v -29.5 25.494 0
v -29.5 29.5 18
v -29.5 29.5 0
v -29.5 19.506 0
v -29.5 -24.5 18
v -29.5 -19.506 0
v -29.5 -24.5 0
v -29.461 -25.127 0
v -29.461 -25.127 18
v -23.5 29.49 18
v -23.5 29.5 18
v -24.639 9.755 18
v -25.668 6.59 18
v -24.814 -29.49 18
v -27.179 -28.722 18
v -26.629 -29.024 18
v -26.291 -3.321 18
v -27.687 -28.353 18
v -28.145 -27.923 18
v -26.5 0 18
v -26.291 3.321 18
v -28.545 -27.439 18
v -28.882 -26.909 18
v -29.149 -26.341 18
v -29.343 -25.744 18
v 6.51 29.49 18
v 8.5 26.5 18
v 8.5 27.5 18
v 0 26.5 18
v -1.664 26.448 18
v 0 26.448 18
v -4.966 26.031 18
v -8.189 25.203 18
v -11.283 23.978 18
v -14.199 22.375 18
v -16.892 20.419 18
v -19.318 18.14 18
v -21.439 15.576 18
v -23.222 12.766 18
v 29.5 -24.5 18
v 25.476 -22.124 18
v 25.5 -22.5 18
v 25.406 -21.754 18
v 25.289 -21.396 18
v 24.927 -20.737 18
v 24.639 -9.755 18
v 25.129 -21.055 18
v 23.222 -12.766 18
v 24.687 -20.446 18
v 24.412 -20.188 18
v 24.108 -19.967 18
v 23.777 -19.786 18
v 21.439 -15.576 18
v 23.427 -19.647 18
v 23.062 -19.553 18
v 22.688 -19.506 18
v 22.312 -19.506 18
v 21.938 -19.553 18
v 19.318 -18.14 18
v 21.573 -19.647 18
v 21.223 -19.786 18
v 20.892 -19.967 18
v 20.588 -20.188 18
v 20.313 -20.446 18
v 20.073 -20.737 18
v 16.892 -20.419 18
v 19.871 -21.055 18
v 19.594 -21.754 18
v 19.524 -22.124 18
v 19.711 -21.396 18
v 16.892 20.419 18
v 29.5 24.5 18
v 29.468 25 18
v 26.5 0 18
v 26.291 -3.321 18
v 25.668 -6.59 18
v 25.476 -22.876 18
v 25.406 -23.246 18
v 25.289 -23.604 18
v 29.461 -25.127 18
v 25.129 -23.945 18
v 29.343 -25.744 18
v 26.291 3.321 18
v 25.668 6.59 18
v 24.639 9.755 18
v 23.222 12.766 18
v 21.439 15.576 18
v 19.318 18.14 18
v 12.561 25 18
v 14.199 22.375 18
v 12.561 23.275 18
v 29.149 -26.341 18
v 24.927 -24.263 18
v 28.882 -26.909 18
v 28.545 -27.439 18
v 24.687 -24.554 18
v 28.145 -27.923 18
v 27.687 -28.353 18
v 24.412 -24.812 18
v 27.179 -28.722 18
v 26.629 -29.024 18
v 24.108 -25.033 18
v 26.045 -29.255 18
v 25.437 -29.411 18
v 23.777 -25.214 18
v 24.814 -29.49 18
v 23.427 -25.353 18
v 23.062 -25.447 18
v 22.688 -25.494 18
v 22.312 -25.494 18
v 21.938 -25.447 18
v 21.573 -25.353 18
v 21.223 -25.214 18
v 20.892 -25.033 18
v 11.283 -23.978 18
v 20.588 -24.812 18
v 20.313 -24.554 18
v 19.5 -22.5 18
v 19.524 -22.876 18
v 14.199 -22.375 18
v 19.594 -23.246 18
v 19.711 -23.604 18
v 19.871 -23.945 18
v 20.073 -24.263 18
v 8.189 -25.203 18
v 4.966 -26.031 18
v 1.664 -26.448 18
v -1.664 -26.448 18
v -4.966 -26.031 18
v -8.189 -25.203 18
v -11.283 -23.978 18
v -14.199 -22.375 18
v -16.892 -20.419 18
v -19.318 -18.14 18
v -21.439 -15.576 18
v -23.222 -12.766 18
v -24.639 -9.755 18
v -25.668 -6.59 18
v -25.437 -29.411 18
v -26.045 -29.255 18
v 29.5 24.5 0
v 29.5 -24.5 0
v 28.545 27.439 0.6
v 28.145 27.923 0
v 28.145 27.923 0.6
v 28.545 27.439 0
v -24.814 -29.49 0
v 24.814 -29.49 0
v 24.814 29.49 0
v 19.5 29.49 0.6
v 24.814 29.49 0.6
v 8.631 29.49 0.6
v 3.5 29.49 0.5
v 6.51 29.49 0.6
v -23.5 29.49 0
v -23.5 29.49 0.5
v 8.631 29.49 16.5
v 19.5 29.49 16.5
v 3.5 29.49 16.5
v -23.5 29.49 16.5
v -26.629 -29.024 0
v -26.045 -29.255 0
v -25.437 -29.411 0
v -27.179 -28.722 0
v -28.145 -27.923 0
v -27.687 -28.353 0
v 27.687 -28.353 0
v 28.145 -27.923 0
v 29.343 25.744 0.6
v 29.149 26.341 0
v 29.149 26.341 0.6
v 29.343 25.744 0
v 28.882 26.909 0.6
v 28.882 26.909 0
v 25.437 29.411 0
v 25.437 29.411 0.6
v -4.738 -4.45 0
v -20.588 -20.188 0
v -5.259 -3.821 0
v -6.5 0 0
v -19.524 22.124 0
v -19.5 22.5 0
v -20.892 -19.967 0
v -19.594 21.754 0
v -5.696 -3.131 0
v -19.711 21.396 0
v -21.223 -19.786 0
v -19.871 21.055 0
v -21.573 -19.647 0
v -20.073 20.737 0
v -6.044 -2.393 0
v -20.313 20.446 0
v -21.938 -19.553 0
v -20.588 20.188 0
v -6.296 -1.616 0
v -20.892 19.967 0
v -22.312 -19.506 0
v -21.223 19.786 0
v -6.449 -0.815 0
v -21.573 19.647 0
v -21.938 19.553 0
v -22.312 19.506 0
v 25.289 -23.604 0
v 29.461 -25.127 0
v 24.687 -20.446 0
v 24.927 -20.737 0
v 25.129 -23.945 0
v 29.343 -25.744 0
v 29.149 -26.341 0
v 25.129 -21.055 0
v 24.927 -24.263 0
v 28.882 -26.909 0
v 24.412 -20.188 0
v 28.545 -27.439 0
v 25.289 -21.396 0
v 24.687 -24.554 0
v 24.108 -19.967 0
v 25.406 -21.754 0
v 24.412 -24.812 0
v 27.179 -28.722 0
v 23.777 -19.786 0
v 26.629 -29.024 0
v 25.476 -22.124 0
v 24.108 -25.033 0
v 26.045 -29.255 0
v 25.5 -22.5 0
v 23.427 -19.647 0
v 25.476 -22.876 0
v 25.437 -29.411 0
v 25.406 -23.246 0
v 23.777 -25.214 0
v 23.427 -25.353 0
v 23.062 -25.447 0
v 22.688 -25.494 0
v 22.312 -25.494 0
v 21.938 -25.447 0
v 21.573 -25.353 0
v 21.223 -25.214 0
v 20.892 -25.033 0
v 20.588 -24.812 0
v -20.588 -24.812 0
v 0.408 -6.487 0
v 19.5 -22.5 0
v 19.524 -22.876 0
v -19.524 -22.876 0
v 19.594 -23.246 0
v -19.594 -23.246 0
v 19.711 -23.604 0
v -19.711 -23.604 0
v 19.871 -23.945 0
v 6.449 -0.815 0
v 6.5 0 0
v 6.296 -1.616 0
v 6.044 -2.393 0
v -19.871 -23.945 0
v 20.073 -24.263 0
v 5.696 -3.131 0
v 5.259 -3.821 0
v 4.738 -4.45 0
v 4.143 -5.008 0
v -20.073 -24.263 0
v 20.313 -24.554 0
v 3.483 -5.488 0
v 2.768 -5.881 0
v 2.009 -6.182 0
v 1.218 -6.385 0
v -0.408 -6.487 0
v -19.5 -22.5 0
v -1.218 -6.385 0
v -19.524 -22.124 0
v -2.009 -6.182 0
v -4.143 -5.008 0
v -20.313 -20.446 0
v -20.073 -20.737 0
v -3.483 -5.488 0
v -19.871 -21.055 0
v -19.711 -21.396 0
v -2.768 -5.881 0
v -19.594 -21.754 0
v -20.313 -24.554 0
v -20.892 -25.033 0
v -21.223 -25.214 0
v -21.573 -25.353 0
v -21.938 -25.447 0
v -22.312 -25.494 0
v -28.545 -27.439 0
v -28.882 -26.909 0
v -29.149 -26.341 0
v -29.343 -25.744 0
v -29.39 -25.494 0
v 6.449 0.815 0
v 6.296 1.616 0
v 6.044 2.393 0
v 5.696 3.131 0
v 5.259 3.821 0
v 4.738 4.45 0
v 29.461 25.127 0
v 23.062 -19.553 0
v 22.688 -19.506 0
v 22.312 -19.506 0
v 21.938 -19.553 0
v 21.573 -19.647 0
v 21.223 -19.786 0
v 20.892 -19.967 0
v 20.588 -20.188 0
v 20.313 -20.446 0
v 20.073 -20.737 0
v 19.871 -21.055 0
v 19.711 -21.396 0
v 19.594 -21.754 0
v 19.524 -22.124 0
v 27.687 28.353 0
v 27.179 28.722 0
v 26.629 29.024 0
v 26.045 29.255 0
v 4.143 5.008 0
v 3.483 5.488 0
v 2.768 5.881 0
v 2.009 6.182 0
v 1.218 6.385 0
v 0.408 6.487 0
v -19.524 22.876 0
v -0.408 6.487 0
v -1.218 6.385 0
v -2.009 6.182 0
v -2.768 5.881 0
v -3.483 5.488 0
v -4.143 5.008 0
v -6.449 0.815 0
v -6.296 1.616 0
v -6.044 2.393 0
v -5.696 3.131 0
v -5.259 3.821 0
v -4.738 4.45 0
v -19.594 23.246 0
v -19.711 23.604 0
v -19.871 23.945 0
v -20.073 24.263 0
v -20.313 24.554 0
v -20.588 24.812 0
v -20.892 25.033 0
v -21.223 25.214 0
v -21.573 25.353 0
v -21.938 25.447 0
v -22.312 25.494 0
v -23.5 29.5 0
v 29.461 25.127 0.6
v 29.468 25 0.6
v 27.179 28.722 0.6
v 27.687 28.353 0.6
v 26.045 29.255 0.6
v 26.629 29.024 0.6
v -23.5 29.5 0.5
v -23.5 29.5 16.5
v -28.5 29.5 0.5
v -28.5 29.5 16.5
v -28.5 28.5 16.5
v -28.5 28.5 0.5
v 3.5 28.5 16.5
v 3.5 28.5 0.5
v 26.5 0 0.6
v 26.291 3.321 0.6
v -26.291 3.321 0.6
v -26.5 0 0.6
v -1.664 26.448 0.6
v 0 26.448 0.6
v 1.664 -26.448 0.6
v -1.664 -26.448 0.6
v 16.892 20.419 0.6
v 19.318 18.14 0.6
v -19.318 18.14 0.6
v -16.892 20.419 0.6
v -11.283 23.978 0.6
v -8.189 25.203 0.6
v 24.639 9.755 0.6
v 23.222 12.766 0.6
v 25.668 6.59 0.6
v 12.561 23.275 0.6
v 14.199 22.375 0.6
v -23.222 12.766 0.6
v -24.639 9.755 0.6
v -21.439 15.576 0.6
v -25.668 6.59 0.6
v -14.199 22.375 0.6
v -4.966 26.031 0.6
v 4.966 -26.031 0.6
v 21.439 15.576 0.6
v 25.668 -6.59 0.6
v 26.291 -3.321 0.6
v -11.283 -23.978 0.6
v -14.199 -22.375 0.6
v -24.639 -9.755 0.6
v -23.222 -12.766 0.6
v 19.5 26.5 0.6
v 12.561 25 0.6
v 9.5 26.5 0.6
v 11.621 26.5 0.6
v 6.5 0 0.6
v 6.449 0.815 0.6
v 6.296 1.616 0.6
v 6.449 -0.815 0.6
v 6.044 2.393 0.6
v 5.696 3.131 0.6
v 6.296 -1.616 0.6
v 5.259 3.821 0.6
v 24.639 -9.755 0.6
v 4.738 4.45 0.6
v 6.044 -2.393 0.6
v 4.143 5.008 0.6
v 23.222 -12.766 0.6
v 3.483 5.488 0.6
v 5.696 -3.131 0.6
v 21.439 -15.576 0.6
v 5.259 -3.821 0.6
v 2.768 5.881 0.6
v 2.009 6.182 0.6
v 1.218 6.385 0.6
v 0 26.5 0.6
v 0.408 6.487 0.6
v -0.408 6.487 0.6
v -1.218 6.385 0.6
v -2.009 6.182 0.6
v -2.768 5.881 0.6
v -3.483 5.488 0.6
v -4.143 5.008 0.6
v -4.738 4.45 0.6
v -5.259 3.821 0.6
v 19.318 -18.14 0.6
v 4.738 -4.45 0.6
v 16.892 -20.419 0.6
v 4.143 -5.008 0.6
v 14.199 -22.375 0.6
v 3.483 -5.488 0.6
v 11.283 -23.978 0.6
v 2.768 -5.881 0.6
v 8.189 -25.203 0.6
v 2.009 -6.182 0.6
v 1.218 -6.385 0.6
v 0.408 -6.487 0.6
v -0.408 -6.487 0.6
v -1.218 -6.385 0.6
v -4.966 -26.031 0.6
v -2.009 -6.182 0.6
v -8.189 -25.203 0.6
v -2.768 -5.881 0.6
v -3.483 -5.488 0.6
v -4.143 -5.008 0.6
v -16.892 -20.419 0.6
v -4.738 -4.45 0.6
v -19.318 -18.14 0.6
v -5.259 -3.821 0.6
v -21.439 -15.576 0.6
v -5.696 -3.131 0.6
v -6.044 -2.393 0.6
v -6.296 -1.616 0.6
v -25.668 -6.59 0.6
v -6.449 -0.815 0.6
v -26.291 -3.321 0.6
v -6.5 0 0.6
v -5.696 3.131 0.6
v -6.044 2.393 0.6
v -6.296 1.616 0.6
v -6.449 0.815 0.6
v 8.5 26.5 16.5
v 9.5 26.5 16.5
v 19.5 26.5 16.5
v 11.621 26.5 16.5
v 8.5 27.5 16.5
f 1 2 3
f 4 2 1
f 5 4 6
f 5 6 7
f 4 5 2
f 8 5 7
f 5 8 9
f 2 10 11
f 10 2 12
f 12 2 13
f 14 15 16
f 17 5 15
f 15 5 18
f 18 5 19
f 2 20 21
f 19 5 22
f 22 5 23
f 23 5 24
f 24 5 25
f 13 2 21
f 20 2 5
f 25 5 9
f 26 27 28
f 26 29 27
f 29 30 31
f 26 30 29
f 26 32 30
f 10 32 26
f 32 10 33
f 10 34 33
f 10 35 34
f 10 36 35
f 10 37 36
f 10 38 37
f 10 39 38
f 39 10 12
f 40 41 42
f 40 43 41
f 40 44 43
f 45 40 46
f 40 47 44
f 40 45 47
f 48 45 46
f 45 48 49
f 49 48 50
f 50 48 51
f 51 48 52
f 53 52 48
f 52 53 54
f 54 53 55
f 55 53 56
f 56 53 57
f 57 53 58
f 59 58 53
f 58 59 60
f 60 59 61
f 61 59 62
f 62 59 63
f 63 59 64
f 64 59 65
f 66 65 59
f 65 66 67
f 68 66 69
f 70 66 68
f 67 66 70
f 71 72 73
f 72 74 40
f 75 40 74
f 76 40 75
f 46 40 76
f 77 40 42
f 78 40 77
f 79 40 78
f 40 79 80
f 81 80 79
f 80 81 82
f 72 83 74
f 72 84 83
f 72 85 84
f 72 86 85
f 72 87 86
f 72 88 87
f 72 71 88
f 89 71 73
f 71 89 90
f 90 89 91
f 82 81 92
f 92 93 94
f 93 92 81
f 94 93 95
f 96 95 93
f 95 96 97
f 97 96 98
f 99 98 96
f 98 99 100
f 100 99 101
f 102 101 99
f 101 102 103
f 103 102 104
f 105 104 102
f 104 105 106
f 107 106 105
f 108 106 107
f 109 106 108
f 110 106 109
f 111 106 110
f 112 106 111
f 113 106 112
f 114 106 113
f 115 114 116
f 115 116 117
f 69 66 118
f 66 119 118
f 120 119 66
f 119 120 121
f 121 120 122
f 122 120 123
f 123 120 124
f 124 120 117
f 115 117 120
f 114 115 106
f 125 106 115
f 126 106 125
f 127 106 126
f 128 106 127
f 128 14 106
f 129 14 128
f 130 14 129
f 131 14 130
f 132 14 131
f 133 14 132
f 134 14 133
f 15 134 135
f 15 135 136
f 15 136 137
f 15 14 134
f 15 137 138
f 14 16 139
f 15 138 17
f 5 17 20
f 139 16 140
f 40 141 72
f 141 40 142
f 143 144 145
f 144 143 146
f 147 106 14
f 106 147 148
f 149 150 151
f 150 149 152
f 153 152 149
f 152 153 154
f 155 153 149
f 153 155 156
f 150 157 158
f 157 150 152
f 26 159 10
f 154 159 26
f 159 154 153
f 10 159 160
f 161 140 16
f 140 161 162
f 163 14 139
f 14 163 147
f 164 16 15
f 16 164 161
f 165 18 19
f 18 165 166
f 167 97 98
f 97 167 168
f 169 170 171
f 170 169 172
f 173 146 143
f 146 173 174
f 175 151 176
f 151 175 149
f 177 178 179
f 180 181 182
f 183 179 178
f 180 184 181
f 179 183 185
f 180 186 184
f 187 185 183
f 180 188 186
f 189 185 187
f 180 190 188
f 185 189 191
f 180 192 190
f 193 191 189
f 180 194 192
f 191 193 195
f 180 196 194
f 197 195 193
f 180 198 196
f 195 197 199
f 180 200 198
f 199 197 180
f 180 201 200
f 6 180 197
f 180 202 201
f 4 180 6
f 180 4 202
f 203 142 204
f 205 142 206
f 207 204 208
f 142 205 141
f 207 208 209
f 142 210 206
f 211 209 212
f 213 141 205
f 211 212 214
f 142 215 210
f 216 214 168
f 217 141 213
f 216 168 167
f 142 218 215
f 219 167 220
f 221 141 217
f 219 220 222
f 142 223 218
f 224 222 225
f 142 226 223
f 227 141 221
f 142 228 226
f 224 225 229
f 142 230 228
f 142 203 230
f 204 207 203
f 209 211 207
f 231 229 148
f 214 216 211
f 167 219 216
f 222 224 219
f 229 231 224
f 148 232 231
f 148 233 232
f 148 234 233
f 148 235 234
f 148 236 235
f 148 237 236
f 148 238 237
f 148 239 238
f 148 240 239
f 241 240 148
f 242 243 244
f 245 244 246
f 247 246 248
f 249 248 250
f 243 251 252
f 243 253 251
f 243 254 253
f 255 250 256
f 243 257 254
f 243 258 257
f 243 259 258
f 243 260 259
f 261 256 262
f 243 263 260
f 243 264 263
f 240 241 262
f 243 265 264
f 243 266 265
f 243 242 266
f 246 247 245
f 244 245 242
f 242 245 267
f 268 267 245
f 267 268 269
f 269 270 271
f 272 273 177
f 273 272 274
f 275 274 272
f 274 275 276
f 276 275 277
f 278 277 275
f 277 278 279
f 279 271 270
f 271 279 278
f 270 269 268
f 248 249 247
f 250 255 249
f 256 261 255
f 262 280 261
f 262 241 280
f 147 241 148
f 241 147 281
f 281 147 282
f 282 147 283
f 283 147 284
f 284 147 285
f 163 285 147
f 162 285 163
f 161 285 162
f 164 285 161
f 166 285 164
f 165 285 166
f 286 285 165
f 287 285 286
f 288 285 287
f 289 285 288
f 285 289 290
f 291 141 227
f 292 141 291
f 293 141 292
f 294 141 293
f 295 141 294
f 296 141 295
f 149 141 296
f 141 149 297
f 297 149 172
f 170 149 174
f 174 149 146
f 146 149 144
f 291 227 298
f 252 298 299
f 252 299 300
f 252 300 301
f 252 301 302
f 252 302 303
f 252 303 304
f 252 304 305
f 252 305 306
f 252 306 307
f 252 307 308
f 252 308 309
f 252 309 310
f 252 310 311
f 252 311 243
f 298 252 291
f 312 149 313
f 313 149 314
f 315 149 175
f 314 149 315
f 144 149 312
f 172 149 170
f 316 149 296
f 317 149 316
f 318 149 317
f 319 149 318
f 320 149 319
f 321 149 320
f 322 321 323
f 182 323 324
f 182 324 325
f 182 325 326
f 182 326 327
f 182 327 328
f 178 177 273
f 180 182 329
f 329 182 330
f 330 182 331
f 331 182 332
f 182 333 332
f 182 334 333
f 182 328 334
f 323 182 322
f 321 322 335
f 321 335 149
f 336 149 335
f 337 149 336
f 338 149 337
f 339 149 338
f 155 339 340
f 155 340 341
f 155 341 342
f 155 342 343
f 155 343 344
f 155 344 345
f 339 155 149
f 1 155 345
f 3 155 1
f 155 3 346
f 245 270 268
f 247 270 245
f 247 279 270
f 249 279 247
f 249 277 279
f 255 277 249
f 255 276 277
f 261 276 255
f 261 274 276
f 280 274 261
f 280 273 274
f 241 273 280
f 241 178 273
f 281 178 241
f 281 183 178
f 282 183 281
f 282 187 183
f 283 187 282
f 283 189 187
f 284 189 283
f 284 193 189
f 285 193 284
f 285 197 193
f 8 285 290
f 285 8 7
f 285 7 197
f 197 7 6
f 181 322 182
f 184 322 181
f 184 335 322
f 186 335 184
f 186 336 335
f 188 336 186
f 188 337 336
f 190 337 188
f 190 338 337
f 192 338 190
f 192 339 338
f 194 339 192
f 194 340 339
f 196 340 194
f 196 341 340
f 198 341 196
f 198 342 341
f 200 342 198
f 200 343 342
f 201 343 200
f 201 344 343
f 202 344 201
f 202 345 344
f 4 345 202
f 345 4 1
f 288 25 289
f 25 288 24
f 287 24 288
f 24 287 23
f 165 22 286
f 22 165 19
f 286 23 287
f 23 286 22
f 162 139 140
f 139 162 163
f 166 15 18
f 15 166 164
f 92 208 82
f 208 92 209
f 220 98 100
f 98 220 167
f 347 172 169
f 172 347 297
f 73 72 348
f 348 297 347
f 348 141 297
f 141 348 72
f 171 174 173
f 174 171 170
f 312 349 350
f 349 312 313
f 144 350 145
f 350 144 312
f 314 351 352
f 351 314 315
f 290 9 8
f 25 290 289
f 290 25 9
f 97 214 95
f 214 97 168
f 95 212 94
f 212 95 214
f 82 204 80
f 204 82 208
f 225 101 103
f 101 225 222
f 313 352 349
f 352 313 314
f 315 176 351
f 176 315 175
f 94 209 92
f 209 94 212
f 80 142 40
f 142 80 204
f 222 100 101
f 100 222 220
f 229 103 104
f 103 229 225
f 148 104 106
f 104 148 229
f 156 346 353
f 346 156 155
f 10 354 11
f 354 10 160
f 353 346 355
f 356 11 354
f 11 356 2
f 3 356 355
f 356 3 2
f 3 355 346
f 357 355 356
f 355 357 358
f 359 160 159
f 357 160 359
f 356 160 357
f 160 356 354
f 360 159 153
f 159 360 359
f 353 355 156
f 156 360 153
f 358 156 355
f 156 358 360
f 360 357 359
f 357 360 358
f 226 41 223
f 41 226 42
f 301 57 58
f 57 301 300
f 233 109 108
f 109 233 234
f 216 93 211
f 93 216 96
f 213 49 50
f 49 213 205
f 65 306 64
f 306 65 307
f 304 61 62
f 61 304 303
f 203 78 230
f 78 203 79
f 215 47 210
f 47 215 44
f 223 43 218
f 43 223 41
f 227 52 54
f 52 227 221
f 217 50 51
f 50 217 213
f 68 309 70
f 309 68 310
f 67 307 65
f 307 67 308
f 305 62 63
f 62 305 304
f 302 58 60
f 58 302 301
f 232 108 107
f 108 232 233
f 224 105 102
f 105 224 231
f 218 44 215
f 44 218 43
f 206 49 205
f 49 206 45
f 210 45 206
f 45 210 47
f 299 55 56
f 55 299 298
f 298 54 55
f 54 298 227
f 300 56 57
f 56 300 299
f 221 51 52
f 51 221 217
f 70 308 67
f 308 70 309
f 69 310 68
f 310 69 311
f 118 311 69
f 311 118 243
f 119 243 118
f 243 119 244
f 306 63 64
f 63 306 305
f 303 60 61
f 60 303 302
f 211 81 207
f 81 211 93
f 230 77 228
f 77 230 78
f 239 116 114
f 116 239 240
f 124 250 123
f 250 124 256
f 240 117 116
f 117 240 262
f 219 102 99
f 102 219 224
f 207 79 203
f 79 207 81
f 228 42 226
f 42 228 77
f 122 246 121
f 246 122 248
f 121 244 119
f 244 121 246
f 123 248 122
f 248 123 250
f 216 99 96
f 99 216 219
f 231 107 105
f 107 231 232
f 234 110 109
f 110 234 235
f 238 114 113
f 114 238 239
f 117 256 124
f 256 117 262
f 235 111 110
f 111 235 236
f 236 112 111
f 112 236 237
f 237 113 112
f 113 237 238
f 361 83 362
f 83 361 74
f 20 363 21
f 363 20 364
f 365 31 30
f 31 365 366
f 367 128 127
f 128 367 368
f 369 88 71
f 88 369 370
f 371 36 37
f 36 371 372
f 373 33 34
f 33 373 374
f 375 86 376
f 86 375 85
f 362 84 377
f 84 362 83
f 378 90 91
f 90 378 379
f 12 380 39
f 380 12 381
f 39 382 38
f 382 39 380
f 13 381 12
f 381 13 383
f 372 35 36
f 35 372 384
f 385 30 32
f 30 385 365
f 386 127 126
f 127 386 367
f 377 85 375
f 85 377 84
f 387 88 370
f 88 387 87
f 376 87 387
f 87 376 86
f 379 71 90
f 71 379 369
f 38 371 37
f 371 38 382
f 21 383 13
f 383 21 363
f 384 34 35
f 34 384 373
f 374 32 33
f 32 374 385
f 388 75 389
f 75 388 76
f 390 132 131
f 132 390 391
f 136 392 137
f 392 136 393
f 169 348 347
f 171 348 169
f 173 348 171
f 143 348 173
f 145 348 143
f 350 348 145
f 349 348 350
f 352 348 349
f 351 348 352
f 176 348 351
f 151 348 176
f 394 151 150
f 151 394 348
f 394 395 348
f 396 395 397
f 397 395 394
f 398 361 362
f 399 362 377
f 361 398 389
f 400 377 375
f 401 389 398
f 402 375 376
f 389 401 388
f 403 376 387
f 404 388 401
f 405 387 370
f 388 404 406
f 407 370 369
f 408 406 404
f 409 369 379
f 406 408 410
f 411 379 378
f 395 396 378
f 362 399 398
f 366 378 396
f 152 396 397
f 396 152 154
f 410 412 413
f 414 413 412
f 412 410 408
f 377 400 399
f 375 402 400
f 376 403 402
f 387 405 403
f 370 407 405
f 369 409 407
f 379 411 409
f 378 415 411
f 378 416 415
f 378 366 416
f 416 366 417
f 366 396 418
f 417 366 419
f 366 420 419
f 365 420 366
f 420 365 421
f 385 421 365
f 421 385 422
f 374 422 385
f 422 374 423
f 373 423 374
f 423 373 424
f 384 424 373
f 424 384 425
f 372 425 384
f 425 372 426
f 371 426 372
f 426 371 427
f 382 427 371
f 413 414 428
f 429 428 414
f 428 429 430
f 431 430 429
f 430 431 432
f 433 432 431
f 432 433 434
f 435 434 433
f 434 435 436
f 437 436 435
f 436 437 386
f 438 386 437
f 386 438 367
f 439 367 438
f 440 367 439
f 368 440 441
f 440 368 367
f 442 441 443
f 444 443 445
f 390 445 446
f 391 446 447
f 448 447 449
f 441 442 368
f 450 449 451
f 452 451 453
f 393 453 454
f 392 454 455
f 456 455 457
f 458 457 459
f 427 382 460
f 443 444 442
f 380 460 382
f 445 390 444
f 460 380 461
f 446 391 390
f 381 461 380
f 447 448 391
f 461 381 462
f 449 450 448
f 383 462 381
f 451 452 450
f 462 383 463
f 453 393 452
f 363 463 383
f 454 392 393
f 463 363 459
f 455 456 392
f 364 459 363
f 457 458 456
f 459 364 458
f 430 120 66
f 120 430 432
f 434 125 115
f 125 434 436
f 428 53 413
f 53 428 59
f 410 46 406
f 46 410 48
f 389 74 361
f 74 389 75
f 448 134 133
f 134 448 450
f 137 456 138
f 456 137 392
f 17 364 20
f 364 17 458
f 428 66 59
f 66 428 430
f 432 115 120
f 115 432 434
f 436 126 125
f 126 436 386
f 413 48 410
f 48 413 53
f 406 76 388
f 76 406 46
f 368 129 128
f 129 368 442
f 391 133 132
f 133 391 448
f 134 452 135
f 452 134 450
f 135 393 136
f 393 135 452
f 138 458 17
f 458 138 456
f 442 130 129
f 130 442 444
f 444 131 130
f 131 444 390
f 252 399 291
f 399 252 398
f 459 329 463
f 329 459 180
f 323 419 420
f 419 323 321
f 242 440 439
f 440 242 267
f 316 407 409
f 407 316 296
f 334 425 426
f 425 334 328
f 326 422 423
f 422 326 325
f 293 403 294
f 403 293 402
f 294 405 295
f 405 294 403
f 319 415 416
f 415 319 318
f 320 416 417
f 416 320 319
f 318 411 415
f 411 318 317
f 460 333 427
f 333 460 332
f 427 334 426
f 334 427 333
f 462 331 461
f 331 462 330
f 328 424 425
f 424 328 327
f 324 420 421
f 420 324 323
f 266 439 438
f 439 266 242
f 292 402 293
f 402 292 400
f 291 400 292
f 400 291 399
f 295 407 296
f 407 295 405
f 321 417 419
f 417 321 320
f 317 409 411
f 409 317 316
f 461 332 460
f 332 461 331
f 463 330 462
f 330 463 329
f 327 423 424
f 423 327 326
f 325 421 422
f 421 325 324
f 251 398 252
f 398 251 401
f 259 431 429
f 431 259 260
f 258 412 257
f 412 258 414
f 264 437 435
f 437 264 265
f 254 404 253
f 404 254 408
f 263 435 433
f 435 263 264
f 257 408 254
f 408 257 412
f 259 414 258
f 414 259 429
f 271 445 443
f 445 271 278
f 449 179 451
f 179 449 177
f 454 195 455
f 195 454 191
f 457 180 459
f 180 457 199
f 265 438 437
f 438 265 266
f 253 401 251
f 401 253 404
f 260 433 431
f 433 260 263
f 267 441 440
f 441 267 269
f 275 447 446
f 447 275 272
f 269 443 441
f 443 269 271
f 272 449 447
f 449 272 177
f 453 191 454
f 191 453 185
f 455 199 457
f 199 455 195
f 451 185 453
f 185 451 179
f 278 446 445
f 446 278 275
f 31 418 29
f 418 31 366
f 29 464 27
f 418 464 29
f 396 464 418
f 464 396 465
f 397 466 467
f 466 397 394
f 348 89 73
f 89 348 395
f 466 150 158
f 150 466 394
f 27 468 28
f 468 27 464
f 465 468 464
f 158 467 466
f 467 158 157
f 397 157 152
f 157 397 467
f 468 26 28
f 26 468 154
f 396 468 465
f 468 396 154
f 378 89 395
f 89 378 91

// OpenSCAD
$fn = 50;


difference() {
	union() {
		hull() {
			translate(v = [-24.5000000000, 24.5000000000, 0]) {
				cylinder(h = 18, r = 5);
			}
			translate(v = [24.5000000000, 24.5000000000, 0]) {
				cylinder(h = 18, r = 5);
			}
			translate(v = [-24.5000000000, -24.5000000000, 0]) {
				cylinder(h = 18, r = 5);
			}
			translate(v = [24.5000000000, -24.5000000000, 0]) {
				cylinder(h = 18, r = 5);
			}
		}
		translate(v = [-29.5000000000, 23.5000000000, 0]) {
			cube(size = [6, 6, 18]);
		}
	}
	union() {
		translate(v = [-30.0000000000, -22.5000000000, -250.0000000000]) {
			rotate(a = [0, 0, 0]) {
				difference() {
					union() {
						hull() {
							translate(v = [7.5000000000, 0, 0]) {
								cylinder(h = 250, r = 3.0000000000, r1 = 3.0000000000, r2 = 3.0000000000);
							}
							translate(v = [-7.5000000000, 0, 0]) {
								cylinder(h = 250, r = 3.0000000000, r1 = 3.0000000000, r2 = 3.0000000000);
							}
						}
					}
					union();
				}
			}
		}
		translate(v = [-30.0000000000, 22.5000000000, -250.0000000000]) {
			rotate(a = [0, 0, 0]) {
				difference() {
					union() {
						hull() {
							translate(v = [7.5000000000, 0, 0]) {
								cylinder(h = 250, r = 3.0000000000, r1 = 3.0000000000, r2 = 3.0000000000);
							}
							translate(v = [-7.5000000000, 0, 0]) {
								cylinder(h = 250, r = 3.0000000000, r1 = 3.0000000000, r2 = 3.0000000000);
							}
						}
					}
					union();
				}
			}
		}
		translate(v = [-28.5000000000, 28.5000000000, 0.5000000000]) {
			cube(size = [32, 1, 16]);
		}
		translate(v = [22.5000000000, -22.5000000000, -50.0000000000]) {
			cylinder(h = 100, r = 3.0000000000);
		}
		translate(v = [0, 0, 0.6000000000]) {
			cylinder(h = 20.4000000000, r = 26.5000000000);
		}
		translate(v = [0, 0, -9.0000000000]) {
			cylinder(h = 18, r = 6.5000000000);
		}
		translate(v = [0.0000000000, 25.0000000000, 0.6000000000]) {
			cube(size = [29.5000000000, 1.5000000000, 20.4000000000]);
		}
		translate(v = [19.5000000000, 25.0000000000, 0.6000000000]) {
			cube(size = [10, 4.5000000000, 20.4000000000]);
		}
		translate(v = [8.5000000000, 25.0000000000, 16.5000000000]) {
			cube(size = [21, 4.5000000000, 1.5000000000]);
		}
		translate(v = [5.7500000000, 30.2500000000, 0.6000000000]) {
			rotate(a = [0, 0, -45]) {
				cube(size = [7.5000000000, 1.5000000000, 20.4000000000]);
			}
		}
		translate(v = [5.0610000000, 23.0000000000, 0.6000000000]) {
			cube(size = [7.5000000000, 2, 17.4000000000]);
		}
	}
}
